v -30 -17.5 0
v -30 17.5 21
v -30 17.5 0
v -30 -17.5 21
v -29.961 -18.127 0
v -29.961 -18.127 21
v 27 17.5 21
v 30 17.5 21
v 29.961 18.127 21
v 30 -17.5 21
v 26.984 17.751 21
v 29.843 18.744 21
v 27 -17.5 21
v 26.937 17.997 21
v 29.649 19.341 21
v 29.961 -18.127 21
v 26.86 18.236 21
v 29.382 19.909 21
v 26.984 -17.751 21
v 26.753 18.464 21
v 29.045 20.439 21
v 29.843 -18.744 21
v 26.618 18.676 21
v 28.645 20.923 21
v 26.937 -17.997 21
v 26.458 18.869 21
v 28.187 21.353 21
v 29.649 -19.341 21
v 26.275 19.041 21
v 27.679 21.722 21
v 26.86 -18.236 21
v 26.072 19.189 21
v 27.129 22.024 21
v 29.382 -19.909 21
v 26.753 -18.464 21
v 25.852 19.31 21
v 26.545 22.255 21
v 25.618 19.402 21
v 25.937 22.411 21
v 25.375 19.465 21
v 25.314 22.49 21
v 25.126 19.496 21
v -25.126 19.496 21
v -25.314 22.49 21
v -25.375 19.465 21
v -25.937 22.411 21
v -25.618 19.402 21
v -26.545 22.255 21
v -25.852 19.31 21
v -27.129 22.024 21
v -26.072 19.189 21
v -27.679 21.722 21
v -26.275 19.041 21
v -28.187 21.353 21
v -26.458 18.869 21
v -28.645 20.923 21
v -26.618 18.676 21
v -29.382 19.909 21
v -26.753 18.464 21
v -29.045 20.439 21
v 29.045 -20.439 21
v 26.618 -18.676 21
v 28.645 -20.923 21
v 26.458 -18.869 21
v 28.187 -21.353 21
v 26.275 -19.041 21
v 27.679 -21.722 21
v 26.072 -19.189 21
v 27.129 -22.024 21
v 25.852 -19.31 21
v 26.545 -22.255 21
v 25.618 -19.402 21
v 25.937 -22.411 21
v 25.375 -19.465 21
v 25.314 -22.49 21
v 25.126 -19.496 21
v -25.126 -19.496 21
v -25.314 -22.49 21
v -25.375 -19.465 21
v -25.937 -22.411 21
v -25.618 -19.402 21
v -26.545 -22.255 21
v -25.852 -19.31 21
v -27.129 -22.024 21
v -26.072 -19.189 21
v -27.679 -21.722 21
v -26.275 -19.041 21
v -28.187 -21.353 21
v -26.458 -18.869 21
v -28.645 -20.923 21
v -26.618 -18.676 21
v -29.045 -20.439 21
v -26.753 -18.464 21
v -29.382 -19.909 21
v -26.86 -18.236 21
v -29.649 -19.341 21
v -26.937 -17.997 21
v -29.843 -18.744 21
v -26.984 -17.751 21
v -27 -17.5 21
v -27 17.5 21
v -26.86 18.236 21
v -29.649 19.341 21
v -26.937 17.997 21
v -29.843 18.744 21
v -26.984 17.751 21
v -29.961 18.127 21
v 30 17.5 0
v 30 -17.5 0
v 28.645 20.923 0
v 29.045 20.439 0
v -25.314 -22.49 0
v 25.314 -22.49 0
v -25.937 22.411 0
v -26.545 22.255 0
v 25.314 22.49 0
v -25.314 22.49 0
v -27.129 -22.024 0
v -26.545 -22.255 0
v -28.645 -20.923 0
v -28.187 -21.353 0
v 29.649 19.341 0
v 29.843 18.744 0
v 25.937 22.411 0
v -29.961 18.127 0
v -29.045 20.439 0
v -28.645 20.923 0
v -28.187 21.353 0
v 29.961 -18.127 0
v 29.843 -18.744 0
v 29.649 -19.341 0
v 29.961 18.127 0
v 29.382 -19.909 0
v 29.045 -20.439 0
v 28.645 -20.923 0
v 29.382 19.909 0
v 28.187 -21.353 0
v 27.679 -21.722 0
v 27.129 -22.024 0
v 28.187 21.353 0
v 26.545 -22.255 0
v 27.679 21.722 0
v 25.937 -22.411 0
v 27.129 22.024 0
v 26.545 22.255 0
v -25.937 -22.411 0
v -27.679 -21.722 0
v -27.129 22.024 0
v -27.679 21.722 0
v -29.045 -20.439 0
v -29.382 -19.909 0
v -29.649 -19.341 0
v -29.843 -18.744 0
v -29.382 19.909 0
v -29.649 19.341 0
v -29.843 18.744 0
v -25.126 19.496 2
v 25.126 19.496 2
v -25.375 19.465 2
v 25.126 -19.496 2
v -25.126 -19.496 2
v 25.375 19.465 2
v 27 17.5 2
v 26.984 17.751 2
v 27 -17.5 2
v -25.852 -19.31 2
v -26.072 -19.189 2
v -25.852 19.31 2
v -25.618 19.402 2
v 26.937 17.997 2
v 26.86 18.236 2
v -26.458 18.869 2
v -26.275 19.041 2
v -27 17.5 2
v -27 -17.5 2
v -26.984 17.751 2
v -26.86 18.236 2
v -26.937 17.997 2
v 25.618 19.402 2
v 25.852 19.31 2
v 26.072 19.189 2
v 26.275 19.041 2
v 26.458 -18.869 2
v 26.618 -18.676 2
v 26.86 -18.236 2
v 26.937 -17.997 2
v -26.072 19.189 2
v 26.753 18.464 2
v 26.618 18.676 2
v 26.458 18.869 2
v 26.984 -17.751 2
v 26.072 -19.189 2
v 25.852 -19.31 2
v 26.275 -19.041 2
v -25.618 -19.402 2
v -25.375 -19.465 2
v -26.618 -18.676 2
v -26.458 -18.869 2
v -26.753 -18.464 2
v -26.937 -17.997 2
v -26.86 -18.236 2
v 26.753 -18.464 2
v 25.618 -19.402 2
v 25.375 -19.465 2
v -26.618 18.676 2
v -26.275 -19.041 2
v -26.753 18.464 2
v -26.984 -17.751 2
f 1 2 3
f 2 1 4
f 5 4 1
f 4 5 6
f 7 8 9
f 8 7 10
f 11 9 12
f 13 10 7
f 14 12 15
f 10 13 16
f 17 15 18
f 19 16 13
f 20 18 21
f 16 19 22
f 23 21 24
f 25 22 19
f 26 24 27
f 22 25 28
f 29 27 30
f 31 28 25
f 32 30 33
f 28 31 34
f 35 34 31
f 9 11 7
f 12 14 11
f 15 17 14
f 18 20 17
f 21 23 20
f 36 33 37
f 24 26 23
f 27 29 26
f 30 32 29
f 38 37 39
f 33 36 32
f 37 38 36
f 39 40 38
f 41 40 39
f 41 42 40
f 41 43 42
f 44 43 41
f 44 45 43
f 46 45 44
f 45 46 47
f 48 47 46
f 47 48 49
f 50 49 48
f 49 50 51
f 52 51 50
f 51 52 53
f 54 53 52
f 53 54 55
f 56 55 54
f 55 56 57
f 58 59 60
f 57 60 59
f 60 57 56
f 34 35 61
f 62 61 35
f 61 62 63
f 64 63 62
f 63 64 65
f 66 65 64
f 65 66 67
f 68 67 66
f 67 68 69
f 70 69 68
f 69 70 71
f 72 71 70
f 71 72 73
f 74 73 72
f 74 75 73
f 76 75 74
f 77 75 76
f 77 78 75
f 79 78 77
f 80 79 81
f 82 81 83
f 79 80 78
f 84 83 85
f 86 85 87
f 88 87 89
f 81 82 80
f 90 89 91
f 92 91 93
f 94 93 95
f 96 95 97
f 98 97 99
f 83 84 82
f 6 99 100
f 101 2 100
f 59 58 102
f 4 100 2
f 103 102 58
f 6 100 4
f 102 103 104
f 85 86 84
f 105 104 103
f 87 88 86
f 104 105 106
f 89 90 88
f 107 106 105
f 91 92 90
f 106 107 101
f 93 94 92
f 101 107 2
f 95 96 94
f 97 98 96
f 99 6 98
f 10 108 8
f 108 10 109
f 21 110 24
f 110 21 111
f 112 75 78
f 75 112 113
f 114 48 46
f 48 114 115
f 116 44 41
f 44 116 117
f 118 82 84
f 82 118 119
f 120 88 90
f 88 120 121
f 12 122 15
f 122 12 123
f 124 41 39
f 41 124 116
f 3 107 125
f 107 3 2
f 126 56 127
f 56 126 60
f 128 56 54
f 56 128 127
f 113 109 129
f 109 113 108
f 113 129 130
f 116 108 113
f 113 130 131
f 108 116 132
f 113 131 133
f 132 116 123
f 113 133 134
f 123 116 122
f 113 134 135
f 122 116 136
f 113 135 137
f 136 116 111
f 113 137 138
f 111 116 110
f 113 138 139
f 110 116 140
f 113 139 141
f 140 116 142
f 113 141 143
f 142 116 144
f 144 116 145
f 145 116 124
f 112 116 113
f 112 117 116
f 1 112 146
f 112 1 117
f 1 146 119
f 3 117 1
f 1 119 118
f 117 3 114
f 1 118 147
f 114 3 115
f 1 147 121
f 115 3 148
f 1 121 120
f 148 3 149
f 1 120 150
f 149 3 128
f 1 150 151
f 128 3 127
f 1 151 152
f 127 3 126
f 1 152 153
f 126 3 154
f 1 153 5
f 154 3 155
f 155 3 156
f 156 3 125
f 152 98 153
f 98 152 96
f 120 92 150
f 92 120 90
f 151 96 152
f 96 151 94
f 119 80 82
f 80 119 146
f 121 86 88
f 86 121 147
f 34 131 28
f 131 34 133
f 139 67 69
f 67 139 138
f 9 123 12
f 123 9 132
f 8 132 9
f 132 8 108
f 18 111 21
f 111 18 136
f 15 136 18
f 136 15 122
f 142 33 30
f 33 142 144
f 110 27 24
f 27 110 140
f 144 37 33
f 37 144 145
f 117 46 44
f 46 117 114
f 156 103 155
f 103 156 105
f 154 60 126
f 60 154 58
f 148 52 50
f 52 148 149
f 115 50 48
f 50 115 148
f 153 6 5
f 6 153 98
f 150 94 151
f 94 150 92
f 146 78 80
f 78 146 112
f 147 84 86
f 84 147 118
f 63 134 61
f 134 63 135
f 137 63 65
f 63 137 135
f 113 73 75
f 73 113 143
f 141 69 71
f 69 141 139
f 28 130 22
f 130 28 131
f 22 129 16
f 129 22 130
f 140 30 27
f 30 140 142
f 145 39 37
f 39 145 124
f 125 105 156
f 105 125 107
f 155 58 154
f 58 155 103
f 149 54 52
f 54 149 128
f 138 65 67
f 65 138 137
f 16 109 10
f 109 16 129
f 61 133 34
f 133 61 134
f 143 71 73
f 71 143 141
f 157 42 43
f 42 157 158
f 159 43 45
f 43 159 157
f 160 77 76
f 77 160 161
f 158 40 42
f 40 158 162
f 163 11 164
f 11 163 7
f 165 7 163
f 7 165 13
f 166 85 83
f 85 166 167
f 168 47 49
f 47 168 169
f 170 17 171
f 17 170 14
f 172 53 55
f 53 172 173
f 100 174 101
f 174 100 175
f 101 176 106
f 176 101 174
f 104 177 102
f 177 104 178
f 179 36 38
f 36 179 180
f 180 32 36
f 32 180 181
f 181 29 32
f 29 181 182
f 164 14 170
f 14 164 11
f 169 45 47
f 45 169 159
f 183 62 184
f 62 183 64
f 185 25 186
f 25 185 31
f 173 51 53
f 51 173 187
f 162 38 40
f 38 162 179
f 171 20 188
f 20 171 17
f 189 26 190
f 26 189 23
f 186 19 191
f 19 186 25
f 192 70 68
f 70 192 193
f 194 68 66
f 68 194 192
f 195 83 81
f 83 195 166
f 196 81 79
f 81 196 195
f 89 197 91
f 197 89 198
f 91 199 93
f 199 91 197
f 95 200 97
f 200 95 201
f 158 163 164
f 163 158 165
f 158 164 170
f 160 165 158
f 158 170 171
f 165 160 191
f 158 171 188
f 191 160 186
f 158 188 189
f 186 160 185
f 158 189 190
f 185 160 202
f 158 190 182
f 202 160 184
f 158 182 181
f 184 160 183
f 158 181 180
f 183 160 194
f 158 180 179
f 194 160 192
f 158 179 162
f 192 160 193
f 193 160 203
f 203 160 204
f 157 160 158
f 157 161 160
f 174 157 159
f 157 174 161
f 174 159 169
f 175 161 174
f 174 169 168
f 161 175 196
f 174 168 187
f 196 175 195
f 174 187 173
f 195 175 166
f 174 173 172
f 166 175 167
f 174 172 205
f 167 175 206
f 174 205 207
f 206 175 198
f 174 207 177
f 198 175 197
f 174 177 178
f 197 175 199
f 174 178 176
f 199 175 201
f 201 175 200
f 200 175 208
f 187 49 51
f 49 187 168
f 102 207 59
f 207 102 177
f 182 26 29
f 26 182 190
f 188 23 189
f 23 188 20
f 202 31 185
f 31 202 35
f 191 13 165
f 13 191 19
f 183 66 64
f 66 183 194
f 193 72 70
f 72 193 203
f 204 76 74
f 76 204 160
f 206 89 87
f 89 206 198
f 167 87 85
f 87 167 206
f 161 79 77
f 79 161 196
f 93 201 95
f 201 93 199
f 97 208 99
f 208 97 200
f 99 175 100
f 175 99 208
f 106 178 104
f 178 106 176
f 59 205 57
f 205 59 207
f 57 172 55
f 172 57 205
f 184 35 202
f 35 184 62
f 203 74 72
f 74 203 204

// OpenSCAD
$fn = 50;


difference() {
	union() {
		hull() {
			translate(v = [-25.0000000000, 17.5000000000, 0]) {
				cylinder(h = 21, r = 5);
			}
			translate(v = [25.0000000000, 17.5000000000, 0]) {
				cylinder(h = 21, r = 5);
			}
			translate(v = [-25.0000000000, -17.5000000000, 0]) {
				cylinder(h = 21, r = 5);
			}
			translate(v = [25.0000000000, -17.5000000000, 0]) {
				cylinder(h = 21, r = 5);
			}
		}
	}
	union() {
		translate(v = [0, 0, 2]) {
			#hull() {
				translate(v = [-25.0000000000, 17.5000000000, 0]) {
					cylinder(h = 19, r = 2);
				}
				translate(v = [25.0000000000, 17.5000000000, 0]) {
					cylinder(h = 19, r = 2);
				}
				translate(v = [-25.0000000000, -17.5000000000, 0]) {
					cylinder(h = 19, r = 2);
				}
				translate(v = [25.0000000000, -17.5000000000, 0]) {
					cylinder(h = 19, r = 2);
				}
			}
		}
	}
}
